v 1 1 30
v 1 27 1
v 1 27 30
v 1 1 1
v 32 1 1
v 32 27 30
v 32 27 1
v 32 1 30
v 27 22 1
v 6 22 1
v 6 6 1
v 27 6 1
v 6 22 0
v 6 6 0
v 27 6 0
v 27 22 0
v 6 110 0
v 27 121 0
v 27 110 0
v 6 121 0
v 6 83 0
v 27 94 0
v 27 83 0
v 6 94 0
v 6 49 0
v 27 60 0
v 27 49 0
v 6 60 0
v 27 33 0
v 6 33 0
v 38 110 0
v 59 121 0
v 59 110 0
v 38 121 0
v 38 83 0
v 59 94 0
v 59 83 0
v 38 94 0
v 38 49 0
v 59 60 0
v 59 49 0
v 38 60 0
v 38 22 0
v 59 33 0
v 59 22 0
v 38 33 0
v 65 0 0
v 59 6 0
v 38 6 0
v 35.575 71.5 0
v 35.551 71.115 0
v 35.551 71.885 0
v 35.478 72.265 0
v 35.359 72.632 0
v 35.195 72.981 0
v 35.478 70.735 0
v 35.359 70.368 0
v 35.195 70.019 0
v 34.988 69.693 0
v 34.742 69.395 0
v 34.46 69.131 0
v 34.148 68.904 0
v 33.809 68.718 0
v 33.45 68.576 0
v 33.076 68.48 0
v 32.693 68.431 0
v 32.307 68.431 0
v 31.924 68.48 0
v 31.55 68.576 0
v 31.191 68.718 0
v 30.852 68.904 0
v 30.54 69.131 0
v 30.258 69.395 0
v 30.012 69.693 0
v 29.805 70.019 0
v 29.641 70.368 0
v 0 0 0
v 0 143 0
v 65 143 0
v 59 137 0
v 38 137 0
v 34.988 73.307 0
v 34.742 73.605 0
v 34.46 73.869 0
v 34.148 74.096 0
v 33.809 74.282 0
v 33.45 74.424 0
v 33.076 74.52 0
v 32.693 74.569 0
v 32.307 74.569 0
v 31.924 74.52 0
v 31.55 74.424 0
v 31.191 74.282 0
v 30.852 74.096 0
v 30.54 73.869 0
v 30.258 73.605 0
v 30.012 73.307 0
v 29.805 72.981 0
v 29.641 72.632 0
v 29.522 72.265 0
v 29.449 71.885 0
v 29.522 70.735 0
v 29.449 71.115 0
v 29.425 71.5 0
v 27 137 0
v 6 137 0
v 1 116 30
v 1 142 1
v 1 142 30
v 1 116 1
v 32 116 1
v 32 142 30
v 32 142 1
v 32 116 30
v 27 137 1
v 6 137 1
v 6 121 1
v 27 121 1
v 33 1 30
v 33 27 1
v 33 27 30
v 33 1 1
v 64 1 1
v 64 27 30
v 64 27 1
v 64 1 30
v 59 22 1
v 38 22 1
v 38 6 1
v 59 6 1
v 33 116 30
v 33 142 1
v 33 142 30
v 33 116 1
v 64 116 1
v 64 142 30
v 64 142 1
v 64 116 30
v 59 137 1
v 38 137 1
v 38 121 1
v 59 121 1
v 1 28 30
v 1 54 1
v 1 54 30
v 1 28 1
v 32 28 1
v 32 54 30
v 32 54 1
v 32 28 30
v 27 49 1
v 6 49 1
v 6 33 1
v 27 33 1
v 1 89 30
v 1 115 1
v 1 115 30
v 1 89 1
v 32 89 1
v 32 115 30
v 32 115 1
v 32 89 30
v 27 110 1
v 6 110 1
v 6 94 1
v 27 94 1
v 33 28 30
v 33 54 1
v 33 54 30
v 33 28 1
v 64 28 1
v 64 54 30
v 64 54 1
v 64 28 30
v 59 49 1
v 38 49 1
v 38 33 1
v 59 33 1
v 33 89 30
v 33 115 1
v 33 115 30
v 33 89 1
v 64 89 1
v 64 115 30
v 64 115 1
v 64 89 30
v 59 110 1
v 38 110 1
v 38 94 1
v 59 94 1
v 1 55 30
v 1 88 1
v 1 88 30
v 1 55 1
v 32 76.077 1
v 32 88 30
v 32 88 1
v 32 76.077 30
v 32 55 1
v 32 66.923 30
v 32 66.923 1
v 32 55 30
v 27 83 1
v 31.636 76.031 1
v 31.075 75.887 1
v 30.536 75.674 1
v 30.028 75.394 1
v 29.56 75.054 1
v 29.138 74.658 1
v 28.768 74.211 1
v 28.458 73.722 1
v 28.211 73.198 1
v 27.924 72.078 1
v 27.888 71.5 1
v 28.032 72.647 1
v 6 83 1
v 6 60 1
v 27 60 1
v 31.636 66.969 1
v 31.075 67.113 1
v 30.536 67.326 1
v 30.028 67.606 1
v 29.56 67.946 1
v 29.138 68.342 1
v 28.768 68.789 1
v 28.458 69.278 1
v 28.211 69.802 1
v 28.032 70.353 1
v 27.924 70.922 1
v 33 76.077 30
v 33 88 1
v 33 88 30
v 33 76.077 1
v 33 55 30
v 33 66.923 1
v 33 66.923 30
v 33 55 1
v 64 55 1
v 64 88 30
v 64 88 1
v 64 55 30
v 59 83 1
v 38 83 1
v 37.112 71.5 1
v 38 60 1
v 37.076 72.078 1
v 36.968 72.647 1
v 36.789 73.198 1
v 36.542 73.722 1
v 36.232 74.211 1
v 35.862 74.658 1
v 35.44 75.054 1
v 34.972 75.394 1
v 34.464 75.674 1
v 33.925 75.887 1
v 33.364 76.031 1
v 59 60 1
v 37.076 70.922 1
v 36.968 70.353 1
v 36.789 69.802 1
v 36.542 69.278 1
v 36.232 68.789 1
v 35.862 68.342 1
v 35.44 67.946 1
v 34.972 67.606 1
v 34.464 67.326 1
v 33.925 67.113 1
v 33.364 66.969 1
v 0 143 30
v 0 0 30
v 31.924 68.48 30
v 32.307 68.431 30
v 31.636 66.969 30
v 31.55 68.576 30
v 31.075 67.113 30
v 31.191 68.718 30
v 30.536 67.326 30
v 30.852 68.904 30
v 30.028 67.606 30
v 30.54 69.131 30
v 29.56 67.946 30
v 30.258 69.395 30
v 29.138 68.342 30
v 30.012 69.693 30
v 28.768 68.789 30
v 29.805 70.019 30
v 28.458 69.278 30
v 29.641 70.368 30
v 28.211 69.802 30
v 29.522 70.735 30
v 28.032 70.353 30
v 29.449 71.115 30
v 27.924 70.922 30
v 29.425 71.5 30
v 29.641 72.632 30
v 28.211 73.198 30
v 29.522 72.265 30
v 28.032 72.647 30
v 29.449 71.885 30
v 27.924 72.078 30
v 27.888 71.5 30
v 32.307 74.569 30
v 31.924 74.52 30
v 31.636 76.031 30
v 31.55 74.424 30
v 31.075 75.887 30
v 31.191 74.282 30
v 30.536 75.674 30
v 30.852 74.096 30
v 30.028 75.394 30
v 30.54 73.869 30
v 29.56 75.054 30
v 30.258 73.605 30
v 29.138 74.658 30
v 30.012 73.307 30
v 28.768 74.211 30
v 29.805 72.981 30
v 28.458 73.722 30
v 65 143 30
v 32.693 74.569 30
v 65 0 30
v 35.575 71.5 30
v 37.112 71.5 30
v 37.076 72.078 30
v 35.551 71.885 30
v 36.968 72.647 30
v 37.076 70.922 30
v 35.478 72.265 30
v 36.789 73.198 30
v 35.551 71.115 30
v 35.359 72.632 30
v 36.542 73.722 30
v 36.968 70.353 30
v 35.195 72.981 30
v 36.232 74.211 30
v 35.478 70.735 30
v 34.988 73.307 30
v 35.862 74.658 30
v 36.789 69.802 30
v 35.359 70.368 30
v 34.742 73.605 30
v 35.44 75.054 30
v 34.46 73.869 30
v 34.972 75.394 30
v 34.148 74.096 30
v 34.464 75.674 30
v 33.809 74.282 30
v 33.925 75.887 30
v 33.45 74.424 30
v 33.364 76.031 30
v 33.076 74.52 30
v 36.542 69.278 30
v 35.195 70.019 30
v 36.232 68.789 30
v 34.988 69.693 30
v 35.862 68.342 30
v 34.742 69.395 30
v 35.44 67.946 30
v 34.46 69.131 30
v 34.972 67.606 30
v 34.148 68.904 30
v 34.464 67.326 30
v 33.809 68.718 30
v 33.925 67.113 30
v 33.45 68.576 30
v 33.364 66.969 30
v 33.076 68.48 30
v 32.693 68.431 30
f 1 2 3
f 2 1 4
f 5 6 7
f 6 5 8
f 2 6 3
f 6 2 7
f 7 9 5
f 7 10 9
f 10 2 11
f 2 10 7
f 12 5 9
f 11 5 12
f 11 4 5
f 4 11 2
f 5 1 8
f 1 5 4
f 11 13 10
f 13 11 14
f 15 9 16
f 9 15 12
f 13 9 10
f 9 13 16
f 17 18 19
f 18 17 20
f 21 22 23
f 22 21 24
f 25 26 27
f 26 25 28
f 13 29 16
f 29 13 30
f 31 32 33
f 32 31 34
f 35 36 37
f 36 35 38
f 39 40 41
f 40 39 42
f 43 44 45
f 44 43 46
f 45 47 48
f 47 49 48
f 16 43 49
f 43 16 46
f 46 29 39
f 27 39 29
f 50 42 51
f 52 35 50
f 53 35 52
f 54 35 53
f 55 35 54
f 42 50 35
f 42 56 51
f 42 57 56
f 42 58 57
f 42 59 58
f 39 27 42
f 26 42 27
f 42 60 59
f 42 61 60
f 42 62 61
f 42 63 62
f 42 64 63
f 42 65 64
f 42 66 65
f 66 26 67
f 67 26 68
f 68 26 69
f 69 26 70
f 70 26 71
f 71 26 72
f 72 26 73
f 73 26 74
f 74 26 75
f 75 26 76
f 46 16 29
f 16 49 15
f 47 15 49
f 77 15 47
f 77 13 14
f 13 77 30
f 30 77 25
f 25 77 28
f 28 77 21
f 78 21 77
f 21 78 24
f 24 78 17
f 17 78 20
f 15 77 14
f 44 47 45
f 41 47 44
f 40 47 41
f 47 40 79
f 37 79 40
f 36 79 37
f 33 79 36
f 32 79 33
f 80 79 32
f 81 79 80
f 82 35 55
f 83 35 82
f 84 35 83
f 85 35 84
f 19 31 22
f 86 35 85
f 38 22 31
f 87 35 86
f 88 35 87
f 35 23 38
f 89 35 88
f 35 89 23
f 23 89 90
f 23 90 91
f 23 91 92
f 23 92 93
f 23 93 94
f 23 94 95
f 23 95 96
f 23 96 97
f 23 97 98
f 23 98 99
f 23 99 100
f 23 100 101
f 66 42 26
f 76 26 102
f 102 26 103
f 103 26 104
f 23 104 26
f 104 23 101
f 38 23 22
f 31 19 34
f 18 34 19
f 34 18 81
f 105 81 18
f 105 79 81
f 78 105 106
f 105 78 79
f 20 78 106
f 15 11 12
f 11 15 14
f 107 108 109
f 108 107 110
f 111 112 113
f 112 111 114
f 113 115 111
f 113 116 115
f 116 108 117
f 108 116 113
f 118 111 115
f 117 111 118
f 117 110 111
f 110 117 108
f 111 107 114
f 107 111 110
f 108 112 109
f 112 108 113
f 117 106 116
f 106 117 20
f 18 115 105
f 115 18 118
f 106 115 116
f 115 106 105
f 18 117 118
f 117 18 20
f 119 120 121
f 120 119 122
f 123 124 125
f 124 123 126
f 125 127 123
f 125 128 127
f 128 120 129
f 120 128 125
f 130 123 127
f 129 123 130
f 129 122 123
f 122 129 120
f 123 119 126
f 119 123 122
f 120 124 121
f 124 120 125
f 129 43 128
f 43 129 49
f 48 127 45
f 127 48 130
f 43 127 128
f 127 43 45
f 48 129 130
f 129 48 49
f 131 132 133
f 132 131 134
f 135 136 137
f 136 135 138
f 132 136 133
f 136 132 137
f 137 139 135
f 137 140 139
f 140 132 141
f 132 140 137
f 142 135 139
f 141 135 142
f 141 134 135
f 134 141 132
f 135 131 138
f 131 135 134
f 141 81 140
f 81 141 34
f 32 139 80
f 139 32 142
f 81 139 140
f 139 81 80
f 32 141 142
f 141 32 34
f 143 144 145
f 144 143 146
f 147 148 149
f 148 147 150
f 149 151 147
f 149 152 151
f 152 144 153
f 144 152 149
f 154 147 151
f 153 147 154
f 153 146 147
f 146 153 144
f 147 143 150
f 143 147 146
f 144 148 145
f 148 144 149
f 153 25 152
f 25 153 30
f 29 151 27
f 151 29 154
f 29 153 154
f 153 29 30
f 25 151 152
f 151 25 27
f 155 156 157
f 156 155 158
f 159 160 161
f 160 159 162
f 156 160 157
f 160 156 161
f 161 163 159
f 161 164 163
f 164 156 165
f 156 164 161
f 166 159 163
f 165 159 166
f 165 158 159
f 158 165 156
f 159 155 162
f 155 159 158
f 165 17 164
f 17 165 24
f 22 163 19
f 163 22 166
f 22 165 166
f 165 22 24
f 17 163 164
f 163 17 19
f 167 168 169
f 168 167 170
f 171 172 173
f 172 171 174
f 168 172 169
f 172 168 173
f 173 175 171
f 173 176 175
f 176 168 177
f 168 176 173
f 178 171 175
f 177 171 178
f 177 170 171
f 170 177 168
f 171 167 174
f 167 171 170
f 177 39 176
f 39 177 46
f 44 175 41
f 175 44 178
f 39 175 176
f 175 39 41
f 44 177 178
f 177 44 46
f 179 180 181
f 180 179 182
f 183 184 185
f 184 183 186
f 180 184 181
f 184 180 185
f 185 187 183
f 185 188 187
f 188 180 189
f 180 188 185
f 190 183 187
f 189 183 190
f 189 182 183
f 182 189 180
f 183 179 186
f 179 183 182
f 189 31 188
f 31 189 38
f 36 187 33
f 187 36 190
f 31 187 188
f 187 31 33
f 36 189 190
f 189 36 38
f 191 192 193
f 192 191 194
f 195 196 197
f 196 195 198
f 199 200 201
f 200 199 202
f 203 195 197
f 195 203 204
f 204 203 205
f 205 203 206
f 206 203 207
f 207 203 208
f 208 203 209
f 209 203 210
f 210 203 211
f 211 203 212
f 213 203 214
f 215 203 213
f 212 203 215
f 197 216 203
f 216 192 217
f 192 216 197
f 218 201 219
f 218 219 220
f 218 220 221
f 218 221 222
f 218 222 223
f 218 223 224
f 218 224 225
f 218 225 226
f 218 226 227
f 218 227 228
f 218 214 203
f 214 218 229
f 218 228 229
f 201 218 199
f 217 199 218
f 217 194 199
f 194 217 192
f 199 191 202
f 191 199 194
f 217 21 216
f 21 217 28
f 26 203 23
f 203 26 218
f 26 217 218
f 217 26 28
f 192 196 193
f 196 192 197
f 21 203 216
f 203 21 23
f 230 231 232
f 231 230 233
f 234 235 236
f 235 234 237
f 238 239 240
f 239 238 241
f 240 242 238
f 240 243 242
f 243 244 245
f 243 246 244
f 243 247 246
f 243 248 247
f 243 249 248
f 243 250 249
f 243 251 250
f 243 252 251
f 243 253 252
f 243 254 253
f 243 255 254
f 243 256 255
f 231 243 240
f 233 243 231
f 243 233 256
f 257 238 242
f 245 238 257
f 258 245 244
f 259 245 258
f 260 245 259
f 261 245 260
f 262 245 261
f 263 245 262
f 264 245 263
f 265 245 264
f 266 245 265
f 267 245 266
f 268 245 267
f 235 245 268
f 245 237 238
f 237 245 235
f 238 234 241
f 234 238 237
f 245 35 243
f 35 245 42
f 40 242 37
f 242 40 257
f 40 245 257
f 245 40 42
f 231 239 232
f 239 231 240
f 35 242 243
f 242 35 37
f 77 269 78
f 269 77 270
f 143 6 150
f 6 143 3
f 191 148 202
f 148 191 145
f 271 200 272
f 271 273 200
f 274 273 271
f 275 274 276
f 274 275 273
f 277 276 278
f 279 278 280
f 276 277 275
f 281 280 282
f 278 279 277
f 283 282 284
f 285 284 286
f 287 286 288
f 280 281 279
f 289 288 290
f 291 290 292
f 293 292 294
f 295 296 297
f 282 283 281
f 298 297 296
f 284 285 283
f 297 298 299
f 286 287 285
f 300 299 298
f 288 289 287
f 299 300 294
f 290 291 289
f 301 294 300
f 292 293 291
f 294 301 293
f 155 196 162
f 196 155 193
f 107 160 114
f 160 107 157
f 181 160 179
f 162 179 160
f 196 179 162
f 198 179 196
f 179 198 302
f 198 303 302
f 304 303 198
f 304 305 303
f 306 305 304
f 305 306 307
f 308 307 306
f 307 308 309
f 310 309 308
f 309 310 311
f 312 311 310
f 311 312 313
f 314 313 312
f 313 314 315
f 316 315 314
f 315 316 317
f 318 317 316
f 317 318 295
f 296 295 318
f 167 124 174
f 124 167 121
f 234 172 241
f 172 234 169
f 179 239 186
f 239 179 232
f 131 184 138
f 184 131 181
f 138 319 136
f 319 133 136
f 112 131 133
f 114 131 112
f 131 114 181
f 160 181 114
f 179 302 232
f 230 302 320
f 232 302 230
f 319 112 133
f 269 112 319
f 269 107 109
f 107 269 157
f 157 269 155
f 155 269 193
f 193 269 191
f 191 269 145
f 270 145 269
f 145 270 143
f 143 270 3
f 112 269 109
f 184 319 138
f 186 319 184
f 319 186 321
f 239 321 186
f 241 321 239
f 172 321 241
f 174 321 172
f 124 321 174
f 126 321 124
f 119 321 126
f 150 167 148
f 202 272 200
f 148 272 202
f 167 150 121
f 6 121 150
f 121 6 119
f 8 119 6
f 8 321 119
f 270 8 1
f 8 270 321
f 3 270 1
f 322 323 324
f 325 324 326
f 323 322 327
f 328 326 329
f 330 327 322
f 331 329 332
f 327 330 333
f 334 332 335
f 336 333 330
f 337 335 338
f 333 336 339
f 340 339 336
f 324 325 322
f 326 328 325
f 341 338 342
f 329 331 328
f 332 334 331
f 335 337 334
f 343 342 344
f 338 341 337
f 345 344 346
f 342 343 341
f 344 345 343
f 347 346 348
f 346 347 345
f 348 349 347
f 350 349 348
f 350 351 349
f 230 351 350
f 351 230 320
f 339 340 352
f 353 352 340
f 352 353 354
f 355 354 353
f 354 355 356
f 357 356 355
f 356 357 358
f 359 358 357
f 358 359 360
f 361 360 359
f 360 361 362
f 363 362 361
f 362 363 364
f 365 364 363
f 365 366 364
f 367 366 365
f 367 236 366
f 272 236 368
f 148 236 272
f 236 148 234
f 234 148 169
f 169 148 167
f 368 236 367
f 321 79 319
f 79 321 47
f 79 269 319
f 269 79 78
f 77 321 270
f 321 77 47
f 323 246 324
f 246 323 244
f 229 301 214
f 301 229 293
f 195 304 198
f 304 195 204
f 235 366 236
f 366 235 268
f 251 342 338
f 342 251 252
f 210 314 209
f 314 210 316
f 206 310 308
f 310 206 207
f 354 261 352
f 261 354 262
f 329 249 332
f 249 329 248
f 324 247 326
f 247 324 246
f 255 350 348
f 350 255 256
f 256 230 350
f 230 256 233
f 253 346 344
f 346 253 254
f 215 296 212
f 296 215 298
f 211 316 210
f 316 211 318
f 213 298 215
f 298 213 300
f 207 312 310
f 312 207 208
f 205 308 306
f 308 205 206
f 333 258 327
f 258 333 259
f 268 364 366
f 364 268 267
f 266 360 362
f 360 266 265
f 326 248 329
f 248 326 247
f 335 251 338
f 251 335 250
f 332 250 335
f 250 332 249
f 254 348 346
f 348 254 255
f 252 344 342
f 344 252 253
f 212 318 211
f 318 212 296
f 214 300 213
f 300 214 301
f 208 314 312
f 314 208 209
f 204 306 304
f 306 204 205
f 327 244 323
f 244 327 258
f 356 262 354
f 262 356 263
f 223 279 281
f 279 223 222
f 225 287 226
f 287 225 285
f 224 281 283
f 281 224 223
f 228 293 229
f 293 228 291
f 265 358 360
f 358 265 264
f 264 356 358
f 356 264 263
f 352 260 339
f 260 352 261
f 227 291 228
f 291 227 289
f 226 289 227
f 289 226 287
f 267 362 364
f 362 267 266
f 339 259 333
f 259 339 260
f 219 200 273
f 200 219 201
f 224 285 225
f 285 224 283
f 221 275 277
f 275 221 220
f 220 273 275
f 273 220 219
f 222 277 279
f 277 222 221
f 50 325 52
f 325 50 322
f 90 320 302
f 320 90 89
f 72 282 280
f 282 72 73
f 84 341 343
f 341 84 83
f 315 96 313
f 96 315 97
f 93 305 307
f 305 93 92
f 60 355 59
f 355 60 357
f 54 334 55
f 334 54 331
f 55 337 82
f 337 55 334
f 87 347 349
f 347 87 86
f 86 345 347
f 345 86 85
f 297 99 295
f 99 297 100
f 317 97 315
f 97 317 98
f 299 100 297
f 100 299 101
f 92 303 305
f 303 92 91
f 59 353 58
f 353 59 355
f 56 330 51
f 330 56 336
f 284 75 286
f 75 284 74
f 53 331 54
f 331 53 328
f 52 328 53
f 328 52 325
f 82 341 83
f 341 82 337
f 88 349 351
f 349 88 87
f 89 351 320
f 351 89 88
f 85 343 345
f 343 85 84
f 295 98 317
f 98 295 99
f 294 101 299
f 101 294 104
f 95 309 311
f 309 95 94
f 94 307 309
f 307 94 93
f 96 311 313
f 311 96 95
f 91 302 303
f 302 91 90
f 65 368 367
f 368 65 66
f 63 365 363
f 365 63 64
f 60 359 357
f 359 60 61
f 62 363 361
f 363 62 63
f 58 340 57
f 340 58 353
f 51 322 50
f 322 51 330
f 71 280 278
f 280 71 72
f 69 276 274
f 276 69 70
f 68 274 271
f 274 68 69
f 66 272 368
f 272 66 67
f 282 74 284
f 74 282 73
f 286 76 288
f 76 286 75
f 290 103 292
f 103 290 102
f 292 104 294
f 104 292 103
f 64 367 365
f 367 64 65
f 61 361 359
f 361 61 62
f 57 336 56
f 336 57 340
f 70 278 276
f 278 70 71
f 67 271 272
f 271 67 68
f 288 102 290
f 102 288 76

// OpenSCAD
// make a box for a 50mm ammo can

$fn=50;
//ammo can inside dimensions.  long side is x axis.
can_x = 281;
can_y = 145;
can_z = 173;
can_gap = 1;    // leave this gap between the box and can walls

wall=1;         // thickness of wall being printed
floor = wall;   // thickness of floor being printed

// internal maximum box
box_max_x = can_x - 2 * can_gap;
box_max_y = can_y - 2 * can_gap;
box_max_z = can_z;

INCH=25.4;
THREAD=1/4*INCH-.2;

module column(xoffset,ny, batx, baty, batz, cubey) {
    border=5;
    for (c=[0:ny/2-1]) {
        translate([xoffset,wall+c*baty+c,wall]) {
            cube([batx,baty,batz]);
            translate([border,border,-wall])
                cube([batx-2*border,baty-2*border,batz]);
        }
        translate([xoffset,cubey-wall-baty*(c+1)-c,wall]) {
            cube([batx,baty,batz]);
            translate([border,border,-wall])
                cube([batx-2*border,baty-2*border,batz]);
        }
    }
    if (ny%2 == 1) {
        translate([xoffset,wall+cubey/2-baty/2,wall]) {
            cube([batx,baty,batz]);
            translate([border,border,-wall])
                cube([batx-2*border,baty-2*border,batz]);
        }
    }
}

module b0(nx, ny, batx, baty, cubex=-1, cubey=box_max_y, cubez=30) {
    cubex = (cubex==-1) ? wall+nx*(wall+batx) : cubex;
    difference() {
        union() {
            b1(nx, ny, batx, baty, cubex, cubey, cubez);
            translate([cubex/2,cubey/2,0]) cylinder(h=cubez,d=THREAD*1.5);
        }
        translate([cubex/2,cubey/2,0])cylinder(h=cubez,d=THREAD);
    }

}

module b1(nx, ny, batx, baty, cubex=-1, cubey=box_max_y, cubez=30) {
    difference() {
        cube([cubex,cubey,cubez]);
        for (r=[0:nx-1]) {
            xoffset=wall+r*batx+r;
            column(xoffset,ny,batx, baty, cubez, cubey);
        }
    }
}

//b0(2,7,32.5,17.5);

b0(2,6,31,26,cubez=30);
